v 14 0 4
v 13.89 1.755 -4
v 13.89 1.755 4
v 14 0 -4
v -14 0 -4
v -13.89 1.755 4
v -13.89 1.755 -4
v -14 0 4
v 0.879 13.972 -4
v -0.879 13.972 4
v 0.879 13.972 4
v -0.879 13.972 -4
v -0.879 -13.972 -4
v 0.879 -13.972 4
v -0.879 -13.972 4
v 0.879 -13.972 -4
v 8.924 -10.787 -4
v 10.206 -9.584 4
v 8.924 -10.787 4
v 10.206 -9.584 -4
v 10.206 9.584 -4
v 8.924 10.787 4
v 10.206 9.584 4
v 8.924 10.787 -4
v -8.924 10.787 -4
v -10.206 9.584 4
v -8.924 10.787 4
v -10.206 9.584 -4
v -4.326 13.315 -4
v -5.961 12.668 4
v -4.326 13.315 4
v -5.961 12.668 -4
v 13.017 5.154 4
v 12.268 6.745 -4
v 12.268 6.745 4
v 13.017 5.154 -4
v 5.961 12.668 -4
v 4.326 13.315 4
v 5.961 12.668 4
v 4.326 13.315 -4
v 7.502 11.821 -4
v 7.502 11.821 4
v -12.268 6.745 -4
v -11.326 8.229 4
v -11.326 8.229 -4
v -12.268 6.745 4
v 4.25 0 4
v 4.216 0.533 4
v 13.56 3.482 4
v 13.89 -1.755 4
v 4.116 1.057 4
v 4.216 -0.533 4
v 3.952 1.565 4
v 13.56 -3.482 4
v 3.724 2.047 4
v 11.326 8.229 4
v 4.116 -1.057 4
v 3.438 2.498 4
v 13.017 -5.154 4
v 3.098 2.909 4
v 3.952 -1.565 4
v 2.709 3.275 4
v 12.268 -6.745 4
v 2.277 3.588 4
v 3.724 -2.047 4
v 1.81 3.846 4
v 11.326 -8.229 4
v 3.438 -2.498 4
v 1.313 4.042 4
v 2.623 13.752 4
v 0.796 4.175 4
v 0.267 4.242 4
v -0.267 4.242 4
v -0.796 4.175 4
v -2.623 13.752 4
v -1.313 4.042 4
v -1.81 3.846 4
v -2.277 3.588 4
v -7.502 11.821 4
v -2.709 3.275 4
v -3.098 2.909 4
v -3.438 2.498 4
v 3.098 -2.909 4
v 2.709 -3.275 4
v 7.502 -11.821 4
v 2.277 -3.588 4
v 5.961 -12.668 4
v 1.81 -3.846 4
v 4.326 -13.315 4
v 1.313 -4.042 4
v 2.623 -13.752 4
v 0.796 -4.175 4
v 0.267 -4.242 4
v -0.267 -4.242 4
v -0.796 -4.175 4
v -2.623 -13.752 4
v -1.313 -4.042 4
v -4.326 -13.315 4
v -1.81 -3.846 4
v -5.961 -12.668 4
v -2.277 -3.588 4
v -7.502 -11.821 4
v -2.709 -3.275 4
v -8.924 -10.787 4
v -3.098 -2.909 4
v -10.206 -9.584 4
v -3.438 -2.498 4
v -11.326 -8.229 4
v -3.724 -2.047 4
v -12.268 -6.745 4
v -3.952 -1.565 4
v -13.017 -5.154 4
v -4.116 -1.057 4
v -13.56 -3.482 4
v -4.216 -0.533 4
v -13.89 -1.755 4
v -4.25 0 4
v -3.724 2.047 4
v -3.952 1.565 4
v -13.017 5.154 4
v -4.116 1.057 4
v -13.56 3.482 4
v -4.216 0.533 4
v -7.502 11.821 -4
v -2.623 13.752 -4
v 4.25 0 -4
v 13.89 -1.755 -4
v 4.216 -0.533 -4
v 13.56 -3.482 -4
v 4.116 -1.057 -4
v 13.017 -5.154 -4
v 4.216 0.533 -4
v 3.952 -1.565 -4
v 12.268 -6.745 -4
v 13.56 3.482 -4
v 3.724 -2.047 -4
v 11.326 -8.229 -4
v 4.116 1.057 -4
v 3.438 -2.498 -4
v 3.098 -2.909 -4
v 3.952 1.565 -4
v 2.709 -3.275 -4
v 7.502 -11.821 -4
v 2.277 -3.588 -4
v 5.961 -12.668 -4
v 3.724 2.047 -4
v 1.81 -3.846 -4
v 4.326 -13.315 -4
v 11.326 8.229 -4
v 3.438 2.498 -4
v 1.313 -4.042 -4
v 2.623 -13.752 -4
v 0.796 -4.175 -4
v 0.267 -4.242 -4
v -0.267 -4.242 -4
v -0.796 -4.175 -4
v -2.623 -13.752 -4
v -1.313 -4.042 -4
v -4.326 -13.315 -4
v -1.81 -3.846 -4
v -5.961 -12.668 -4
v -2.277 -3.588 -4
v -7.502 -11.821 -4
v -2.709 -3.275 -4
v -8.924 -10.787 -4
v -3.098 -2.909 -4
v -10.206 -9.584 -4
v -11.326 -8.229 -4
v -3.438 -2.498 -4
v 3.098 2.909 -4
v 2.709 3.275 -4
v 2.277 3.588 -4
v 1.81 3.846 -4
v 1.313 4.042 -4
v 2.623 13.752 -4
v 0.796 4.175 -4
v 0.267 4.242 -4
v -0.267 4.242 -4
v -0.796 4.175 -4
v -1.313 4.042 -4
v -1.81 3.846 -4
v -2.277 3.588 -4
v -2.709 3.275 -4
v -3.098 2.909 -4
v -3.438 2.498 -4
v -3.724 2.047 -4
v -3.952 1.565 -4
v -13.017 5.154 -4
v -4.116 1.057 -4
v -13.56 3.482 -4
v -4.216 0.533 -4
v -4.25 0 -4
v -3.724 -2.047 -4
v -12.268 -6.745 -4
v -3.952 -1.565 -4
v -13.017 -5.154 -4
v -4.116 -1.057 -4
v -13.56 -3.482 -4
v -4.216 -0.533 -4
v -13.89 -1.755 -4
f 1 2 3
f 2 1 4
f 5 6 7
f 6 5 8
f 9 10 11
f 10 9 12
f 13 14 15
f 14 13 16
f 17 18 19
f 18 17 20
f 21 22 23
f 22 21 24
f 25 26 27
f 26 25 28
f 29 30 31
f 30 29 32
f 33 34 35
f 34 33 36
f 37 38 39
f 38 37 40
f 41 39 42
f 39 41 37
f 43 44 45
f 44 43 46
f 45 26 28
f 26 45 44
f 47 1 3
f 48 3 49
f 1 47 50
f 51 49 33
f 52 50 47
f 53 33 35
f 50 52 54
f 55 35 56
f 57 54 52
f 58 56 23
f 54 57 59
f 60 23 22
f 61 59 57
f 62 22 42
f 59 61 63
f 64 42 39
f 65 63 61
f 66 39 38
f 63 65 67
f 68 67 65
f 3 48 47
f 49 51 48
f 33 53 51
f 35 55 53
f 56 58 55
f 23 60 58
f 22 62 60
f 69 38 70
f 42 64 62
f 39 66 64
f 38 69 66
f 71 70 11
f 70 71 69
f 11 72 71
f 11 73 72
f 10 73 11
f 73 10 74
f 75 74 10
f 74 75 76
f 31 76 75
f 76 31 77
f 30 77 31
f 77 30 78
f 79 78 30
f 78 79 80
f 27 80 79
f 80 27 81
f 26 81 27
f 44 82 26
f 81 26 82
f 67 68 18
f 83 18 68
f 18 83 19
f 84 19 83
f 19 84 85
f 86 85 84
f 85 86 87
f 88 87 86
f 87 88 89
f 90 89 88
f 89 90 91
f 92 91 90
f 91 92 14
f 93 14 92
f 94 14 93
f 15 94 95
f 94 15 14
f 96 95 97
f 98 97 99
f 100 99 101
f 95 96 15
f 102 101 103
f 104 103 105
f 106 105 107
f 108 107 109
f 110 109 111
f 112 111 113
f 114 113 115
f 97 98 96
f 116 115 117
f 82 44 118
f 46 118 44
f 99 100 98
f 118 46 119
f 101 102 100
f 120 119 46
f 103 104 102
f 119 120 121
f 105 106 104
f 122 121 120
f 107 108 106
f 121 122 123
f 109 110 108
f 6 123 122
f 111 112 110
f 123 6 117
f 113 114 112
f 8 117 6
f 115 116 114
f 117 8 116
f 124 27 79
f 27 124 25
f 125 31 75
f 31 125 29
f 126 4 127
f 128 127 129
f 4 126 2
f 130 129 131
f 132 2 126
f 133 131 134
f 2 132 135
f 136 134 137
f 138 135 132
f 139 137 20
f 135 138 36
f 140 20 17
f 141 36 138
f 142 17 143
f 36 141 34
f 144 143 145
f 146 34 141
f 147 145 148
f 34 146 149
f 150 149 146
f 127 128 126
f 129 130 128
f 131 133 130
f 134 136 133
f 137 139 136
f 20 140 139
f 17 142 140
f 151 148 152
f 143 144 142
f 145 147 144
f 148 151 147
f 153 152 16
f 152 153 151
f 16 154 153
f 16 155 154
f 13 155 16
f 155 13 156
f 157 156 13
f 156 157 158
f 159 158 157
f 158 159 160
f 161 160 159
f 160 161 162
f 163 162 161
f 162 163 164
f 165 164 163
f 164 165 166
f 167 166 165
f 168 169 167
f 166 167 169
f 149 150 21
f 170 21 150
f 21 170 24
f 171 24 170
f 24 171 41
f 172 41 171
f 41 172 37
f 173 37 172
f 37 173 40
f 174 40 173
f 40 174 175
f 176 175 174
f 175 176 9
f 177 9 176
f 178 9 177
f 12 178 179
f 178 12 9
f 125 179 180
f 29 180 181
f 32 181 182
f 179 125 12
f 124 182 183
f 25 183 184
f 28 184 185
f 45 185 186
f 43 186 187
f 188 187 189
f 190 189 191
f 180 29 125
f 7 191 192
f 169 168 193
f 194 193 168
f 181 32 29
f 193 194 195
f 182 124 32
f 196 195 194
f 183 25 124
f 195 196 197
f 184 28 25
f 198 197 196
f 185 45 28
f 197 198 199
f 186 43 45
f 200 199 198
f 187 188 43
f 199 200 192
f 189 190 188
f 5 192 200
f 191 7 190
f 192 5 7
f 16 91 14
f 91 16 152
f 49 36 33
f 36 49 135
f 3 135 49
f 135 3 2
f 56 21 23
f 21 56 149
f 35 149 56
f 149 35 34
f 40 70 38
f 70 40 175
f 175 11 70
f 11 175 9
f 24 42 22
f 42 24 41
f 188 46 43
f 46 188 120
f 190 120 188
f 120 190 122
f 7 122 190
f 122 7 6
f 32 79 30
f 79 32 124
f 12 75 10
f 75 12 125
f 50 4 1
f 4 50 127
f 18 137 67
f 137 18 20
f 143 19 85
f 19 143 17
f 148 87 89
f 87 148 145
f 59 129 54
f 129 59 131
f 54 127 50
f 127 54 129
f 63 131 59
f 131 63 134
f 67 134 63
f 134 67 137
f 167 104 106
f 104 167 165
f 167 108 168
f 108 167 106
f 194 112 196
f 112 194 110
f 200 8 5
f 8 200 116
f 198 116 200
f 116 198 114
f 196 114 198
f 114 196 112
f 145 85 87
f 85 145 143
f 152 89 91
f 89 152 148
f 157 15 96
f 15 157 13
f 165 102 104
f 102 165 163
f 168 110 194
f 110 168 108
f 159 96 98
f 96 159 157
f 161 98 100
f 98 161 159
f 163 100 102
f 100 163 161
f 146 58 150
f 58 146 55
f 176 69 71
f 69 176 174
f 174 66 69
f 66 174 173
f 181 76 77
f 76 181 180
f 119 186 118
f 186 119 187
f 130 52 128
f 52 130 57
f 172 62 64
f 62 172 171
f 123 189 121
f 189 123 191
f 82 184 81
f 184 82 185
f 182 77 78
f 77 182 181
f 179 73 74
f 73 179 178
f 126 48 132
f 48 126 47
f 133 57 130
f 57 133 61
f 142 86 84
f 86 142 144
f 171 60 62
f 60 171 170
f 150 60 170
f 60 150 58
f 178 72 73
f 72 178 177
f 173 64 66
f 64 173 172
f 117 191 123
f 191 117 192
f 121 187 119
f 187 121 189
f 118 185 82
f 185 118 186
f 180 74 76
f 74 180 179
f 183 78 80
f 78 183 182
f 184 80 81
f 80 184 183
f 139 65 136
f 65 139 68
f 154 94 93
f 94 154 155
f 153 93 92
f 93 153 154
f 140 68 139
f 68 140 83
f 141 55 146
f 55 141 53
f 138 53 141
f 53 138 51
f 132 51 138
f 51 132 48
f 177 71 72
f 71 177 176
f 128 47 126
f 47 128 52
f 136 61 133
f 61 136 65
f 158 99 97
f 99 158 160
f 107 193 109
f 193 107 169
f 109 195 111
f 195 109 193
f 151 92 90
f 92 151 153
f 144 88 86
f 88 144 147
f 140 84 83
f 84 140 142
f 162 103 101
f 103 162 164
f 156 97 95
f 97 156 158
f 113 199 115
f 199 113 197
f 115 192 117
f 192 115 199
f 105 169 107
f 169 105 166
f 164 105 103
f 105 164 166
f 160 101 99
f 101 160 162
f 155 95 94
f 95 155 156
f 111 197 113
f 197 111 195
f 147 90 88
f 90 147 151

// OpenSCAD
$fn = 50;


difference() {
	union() {
		translate(v = [0, 0, -4.0000000000]) {
			cylinder(h = 8, r = 14.0000000000);
		}
	}
	union() {
		translate(v = [0, 0, -100.0000000000]) {
			cylinder(h = 200, r = 4.2500000000);
		}
	}
}
